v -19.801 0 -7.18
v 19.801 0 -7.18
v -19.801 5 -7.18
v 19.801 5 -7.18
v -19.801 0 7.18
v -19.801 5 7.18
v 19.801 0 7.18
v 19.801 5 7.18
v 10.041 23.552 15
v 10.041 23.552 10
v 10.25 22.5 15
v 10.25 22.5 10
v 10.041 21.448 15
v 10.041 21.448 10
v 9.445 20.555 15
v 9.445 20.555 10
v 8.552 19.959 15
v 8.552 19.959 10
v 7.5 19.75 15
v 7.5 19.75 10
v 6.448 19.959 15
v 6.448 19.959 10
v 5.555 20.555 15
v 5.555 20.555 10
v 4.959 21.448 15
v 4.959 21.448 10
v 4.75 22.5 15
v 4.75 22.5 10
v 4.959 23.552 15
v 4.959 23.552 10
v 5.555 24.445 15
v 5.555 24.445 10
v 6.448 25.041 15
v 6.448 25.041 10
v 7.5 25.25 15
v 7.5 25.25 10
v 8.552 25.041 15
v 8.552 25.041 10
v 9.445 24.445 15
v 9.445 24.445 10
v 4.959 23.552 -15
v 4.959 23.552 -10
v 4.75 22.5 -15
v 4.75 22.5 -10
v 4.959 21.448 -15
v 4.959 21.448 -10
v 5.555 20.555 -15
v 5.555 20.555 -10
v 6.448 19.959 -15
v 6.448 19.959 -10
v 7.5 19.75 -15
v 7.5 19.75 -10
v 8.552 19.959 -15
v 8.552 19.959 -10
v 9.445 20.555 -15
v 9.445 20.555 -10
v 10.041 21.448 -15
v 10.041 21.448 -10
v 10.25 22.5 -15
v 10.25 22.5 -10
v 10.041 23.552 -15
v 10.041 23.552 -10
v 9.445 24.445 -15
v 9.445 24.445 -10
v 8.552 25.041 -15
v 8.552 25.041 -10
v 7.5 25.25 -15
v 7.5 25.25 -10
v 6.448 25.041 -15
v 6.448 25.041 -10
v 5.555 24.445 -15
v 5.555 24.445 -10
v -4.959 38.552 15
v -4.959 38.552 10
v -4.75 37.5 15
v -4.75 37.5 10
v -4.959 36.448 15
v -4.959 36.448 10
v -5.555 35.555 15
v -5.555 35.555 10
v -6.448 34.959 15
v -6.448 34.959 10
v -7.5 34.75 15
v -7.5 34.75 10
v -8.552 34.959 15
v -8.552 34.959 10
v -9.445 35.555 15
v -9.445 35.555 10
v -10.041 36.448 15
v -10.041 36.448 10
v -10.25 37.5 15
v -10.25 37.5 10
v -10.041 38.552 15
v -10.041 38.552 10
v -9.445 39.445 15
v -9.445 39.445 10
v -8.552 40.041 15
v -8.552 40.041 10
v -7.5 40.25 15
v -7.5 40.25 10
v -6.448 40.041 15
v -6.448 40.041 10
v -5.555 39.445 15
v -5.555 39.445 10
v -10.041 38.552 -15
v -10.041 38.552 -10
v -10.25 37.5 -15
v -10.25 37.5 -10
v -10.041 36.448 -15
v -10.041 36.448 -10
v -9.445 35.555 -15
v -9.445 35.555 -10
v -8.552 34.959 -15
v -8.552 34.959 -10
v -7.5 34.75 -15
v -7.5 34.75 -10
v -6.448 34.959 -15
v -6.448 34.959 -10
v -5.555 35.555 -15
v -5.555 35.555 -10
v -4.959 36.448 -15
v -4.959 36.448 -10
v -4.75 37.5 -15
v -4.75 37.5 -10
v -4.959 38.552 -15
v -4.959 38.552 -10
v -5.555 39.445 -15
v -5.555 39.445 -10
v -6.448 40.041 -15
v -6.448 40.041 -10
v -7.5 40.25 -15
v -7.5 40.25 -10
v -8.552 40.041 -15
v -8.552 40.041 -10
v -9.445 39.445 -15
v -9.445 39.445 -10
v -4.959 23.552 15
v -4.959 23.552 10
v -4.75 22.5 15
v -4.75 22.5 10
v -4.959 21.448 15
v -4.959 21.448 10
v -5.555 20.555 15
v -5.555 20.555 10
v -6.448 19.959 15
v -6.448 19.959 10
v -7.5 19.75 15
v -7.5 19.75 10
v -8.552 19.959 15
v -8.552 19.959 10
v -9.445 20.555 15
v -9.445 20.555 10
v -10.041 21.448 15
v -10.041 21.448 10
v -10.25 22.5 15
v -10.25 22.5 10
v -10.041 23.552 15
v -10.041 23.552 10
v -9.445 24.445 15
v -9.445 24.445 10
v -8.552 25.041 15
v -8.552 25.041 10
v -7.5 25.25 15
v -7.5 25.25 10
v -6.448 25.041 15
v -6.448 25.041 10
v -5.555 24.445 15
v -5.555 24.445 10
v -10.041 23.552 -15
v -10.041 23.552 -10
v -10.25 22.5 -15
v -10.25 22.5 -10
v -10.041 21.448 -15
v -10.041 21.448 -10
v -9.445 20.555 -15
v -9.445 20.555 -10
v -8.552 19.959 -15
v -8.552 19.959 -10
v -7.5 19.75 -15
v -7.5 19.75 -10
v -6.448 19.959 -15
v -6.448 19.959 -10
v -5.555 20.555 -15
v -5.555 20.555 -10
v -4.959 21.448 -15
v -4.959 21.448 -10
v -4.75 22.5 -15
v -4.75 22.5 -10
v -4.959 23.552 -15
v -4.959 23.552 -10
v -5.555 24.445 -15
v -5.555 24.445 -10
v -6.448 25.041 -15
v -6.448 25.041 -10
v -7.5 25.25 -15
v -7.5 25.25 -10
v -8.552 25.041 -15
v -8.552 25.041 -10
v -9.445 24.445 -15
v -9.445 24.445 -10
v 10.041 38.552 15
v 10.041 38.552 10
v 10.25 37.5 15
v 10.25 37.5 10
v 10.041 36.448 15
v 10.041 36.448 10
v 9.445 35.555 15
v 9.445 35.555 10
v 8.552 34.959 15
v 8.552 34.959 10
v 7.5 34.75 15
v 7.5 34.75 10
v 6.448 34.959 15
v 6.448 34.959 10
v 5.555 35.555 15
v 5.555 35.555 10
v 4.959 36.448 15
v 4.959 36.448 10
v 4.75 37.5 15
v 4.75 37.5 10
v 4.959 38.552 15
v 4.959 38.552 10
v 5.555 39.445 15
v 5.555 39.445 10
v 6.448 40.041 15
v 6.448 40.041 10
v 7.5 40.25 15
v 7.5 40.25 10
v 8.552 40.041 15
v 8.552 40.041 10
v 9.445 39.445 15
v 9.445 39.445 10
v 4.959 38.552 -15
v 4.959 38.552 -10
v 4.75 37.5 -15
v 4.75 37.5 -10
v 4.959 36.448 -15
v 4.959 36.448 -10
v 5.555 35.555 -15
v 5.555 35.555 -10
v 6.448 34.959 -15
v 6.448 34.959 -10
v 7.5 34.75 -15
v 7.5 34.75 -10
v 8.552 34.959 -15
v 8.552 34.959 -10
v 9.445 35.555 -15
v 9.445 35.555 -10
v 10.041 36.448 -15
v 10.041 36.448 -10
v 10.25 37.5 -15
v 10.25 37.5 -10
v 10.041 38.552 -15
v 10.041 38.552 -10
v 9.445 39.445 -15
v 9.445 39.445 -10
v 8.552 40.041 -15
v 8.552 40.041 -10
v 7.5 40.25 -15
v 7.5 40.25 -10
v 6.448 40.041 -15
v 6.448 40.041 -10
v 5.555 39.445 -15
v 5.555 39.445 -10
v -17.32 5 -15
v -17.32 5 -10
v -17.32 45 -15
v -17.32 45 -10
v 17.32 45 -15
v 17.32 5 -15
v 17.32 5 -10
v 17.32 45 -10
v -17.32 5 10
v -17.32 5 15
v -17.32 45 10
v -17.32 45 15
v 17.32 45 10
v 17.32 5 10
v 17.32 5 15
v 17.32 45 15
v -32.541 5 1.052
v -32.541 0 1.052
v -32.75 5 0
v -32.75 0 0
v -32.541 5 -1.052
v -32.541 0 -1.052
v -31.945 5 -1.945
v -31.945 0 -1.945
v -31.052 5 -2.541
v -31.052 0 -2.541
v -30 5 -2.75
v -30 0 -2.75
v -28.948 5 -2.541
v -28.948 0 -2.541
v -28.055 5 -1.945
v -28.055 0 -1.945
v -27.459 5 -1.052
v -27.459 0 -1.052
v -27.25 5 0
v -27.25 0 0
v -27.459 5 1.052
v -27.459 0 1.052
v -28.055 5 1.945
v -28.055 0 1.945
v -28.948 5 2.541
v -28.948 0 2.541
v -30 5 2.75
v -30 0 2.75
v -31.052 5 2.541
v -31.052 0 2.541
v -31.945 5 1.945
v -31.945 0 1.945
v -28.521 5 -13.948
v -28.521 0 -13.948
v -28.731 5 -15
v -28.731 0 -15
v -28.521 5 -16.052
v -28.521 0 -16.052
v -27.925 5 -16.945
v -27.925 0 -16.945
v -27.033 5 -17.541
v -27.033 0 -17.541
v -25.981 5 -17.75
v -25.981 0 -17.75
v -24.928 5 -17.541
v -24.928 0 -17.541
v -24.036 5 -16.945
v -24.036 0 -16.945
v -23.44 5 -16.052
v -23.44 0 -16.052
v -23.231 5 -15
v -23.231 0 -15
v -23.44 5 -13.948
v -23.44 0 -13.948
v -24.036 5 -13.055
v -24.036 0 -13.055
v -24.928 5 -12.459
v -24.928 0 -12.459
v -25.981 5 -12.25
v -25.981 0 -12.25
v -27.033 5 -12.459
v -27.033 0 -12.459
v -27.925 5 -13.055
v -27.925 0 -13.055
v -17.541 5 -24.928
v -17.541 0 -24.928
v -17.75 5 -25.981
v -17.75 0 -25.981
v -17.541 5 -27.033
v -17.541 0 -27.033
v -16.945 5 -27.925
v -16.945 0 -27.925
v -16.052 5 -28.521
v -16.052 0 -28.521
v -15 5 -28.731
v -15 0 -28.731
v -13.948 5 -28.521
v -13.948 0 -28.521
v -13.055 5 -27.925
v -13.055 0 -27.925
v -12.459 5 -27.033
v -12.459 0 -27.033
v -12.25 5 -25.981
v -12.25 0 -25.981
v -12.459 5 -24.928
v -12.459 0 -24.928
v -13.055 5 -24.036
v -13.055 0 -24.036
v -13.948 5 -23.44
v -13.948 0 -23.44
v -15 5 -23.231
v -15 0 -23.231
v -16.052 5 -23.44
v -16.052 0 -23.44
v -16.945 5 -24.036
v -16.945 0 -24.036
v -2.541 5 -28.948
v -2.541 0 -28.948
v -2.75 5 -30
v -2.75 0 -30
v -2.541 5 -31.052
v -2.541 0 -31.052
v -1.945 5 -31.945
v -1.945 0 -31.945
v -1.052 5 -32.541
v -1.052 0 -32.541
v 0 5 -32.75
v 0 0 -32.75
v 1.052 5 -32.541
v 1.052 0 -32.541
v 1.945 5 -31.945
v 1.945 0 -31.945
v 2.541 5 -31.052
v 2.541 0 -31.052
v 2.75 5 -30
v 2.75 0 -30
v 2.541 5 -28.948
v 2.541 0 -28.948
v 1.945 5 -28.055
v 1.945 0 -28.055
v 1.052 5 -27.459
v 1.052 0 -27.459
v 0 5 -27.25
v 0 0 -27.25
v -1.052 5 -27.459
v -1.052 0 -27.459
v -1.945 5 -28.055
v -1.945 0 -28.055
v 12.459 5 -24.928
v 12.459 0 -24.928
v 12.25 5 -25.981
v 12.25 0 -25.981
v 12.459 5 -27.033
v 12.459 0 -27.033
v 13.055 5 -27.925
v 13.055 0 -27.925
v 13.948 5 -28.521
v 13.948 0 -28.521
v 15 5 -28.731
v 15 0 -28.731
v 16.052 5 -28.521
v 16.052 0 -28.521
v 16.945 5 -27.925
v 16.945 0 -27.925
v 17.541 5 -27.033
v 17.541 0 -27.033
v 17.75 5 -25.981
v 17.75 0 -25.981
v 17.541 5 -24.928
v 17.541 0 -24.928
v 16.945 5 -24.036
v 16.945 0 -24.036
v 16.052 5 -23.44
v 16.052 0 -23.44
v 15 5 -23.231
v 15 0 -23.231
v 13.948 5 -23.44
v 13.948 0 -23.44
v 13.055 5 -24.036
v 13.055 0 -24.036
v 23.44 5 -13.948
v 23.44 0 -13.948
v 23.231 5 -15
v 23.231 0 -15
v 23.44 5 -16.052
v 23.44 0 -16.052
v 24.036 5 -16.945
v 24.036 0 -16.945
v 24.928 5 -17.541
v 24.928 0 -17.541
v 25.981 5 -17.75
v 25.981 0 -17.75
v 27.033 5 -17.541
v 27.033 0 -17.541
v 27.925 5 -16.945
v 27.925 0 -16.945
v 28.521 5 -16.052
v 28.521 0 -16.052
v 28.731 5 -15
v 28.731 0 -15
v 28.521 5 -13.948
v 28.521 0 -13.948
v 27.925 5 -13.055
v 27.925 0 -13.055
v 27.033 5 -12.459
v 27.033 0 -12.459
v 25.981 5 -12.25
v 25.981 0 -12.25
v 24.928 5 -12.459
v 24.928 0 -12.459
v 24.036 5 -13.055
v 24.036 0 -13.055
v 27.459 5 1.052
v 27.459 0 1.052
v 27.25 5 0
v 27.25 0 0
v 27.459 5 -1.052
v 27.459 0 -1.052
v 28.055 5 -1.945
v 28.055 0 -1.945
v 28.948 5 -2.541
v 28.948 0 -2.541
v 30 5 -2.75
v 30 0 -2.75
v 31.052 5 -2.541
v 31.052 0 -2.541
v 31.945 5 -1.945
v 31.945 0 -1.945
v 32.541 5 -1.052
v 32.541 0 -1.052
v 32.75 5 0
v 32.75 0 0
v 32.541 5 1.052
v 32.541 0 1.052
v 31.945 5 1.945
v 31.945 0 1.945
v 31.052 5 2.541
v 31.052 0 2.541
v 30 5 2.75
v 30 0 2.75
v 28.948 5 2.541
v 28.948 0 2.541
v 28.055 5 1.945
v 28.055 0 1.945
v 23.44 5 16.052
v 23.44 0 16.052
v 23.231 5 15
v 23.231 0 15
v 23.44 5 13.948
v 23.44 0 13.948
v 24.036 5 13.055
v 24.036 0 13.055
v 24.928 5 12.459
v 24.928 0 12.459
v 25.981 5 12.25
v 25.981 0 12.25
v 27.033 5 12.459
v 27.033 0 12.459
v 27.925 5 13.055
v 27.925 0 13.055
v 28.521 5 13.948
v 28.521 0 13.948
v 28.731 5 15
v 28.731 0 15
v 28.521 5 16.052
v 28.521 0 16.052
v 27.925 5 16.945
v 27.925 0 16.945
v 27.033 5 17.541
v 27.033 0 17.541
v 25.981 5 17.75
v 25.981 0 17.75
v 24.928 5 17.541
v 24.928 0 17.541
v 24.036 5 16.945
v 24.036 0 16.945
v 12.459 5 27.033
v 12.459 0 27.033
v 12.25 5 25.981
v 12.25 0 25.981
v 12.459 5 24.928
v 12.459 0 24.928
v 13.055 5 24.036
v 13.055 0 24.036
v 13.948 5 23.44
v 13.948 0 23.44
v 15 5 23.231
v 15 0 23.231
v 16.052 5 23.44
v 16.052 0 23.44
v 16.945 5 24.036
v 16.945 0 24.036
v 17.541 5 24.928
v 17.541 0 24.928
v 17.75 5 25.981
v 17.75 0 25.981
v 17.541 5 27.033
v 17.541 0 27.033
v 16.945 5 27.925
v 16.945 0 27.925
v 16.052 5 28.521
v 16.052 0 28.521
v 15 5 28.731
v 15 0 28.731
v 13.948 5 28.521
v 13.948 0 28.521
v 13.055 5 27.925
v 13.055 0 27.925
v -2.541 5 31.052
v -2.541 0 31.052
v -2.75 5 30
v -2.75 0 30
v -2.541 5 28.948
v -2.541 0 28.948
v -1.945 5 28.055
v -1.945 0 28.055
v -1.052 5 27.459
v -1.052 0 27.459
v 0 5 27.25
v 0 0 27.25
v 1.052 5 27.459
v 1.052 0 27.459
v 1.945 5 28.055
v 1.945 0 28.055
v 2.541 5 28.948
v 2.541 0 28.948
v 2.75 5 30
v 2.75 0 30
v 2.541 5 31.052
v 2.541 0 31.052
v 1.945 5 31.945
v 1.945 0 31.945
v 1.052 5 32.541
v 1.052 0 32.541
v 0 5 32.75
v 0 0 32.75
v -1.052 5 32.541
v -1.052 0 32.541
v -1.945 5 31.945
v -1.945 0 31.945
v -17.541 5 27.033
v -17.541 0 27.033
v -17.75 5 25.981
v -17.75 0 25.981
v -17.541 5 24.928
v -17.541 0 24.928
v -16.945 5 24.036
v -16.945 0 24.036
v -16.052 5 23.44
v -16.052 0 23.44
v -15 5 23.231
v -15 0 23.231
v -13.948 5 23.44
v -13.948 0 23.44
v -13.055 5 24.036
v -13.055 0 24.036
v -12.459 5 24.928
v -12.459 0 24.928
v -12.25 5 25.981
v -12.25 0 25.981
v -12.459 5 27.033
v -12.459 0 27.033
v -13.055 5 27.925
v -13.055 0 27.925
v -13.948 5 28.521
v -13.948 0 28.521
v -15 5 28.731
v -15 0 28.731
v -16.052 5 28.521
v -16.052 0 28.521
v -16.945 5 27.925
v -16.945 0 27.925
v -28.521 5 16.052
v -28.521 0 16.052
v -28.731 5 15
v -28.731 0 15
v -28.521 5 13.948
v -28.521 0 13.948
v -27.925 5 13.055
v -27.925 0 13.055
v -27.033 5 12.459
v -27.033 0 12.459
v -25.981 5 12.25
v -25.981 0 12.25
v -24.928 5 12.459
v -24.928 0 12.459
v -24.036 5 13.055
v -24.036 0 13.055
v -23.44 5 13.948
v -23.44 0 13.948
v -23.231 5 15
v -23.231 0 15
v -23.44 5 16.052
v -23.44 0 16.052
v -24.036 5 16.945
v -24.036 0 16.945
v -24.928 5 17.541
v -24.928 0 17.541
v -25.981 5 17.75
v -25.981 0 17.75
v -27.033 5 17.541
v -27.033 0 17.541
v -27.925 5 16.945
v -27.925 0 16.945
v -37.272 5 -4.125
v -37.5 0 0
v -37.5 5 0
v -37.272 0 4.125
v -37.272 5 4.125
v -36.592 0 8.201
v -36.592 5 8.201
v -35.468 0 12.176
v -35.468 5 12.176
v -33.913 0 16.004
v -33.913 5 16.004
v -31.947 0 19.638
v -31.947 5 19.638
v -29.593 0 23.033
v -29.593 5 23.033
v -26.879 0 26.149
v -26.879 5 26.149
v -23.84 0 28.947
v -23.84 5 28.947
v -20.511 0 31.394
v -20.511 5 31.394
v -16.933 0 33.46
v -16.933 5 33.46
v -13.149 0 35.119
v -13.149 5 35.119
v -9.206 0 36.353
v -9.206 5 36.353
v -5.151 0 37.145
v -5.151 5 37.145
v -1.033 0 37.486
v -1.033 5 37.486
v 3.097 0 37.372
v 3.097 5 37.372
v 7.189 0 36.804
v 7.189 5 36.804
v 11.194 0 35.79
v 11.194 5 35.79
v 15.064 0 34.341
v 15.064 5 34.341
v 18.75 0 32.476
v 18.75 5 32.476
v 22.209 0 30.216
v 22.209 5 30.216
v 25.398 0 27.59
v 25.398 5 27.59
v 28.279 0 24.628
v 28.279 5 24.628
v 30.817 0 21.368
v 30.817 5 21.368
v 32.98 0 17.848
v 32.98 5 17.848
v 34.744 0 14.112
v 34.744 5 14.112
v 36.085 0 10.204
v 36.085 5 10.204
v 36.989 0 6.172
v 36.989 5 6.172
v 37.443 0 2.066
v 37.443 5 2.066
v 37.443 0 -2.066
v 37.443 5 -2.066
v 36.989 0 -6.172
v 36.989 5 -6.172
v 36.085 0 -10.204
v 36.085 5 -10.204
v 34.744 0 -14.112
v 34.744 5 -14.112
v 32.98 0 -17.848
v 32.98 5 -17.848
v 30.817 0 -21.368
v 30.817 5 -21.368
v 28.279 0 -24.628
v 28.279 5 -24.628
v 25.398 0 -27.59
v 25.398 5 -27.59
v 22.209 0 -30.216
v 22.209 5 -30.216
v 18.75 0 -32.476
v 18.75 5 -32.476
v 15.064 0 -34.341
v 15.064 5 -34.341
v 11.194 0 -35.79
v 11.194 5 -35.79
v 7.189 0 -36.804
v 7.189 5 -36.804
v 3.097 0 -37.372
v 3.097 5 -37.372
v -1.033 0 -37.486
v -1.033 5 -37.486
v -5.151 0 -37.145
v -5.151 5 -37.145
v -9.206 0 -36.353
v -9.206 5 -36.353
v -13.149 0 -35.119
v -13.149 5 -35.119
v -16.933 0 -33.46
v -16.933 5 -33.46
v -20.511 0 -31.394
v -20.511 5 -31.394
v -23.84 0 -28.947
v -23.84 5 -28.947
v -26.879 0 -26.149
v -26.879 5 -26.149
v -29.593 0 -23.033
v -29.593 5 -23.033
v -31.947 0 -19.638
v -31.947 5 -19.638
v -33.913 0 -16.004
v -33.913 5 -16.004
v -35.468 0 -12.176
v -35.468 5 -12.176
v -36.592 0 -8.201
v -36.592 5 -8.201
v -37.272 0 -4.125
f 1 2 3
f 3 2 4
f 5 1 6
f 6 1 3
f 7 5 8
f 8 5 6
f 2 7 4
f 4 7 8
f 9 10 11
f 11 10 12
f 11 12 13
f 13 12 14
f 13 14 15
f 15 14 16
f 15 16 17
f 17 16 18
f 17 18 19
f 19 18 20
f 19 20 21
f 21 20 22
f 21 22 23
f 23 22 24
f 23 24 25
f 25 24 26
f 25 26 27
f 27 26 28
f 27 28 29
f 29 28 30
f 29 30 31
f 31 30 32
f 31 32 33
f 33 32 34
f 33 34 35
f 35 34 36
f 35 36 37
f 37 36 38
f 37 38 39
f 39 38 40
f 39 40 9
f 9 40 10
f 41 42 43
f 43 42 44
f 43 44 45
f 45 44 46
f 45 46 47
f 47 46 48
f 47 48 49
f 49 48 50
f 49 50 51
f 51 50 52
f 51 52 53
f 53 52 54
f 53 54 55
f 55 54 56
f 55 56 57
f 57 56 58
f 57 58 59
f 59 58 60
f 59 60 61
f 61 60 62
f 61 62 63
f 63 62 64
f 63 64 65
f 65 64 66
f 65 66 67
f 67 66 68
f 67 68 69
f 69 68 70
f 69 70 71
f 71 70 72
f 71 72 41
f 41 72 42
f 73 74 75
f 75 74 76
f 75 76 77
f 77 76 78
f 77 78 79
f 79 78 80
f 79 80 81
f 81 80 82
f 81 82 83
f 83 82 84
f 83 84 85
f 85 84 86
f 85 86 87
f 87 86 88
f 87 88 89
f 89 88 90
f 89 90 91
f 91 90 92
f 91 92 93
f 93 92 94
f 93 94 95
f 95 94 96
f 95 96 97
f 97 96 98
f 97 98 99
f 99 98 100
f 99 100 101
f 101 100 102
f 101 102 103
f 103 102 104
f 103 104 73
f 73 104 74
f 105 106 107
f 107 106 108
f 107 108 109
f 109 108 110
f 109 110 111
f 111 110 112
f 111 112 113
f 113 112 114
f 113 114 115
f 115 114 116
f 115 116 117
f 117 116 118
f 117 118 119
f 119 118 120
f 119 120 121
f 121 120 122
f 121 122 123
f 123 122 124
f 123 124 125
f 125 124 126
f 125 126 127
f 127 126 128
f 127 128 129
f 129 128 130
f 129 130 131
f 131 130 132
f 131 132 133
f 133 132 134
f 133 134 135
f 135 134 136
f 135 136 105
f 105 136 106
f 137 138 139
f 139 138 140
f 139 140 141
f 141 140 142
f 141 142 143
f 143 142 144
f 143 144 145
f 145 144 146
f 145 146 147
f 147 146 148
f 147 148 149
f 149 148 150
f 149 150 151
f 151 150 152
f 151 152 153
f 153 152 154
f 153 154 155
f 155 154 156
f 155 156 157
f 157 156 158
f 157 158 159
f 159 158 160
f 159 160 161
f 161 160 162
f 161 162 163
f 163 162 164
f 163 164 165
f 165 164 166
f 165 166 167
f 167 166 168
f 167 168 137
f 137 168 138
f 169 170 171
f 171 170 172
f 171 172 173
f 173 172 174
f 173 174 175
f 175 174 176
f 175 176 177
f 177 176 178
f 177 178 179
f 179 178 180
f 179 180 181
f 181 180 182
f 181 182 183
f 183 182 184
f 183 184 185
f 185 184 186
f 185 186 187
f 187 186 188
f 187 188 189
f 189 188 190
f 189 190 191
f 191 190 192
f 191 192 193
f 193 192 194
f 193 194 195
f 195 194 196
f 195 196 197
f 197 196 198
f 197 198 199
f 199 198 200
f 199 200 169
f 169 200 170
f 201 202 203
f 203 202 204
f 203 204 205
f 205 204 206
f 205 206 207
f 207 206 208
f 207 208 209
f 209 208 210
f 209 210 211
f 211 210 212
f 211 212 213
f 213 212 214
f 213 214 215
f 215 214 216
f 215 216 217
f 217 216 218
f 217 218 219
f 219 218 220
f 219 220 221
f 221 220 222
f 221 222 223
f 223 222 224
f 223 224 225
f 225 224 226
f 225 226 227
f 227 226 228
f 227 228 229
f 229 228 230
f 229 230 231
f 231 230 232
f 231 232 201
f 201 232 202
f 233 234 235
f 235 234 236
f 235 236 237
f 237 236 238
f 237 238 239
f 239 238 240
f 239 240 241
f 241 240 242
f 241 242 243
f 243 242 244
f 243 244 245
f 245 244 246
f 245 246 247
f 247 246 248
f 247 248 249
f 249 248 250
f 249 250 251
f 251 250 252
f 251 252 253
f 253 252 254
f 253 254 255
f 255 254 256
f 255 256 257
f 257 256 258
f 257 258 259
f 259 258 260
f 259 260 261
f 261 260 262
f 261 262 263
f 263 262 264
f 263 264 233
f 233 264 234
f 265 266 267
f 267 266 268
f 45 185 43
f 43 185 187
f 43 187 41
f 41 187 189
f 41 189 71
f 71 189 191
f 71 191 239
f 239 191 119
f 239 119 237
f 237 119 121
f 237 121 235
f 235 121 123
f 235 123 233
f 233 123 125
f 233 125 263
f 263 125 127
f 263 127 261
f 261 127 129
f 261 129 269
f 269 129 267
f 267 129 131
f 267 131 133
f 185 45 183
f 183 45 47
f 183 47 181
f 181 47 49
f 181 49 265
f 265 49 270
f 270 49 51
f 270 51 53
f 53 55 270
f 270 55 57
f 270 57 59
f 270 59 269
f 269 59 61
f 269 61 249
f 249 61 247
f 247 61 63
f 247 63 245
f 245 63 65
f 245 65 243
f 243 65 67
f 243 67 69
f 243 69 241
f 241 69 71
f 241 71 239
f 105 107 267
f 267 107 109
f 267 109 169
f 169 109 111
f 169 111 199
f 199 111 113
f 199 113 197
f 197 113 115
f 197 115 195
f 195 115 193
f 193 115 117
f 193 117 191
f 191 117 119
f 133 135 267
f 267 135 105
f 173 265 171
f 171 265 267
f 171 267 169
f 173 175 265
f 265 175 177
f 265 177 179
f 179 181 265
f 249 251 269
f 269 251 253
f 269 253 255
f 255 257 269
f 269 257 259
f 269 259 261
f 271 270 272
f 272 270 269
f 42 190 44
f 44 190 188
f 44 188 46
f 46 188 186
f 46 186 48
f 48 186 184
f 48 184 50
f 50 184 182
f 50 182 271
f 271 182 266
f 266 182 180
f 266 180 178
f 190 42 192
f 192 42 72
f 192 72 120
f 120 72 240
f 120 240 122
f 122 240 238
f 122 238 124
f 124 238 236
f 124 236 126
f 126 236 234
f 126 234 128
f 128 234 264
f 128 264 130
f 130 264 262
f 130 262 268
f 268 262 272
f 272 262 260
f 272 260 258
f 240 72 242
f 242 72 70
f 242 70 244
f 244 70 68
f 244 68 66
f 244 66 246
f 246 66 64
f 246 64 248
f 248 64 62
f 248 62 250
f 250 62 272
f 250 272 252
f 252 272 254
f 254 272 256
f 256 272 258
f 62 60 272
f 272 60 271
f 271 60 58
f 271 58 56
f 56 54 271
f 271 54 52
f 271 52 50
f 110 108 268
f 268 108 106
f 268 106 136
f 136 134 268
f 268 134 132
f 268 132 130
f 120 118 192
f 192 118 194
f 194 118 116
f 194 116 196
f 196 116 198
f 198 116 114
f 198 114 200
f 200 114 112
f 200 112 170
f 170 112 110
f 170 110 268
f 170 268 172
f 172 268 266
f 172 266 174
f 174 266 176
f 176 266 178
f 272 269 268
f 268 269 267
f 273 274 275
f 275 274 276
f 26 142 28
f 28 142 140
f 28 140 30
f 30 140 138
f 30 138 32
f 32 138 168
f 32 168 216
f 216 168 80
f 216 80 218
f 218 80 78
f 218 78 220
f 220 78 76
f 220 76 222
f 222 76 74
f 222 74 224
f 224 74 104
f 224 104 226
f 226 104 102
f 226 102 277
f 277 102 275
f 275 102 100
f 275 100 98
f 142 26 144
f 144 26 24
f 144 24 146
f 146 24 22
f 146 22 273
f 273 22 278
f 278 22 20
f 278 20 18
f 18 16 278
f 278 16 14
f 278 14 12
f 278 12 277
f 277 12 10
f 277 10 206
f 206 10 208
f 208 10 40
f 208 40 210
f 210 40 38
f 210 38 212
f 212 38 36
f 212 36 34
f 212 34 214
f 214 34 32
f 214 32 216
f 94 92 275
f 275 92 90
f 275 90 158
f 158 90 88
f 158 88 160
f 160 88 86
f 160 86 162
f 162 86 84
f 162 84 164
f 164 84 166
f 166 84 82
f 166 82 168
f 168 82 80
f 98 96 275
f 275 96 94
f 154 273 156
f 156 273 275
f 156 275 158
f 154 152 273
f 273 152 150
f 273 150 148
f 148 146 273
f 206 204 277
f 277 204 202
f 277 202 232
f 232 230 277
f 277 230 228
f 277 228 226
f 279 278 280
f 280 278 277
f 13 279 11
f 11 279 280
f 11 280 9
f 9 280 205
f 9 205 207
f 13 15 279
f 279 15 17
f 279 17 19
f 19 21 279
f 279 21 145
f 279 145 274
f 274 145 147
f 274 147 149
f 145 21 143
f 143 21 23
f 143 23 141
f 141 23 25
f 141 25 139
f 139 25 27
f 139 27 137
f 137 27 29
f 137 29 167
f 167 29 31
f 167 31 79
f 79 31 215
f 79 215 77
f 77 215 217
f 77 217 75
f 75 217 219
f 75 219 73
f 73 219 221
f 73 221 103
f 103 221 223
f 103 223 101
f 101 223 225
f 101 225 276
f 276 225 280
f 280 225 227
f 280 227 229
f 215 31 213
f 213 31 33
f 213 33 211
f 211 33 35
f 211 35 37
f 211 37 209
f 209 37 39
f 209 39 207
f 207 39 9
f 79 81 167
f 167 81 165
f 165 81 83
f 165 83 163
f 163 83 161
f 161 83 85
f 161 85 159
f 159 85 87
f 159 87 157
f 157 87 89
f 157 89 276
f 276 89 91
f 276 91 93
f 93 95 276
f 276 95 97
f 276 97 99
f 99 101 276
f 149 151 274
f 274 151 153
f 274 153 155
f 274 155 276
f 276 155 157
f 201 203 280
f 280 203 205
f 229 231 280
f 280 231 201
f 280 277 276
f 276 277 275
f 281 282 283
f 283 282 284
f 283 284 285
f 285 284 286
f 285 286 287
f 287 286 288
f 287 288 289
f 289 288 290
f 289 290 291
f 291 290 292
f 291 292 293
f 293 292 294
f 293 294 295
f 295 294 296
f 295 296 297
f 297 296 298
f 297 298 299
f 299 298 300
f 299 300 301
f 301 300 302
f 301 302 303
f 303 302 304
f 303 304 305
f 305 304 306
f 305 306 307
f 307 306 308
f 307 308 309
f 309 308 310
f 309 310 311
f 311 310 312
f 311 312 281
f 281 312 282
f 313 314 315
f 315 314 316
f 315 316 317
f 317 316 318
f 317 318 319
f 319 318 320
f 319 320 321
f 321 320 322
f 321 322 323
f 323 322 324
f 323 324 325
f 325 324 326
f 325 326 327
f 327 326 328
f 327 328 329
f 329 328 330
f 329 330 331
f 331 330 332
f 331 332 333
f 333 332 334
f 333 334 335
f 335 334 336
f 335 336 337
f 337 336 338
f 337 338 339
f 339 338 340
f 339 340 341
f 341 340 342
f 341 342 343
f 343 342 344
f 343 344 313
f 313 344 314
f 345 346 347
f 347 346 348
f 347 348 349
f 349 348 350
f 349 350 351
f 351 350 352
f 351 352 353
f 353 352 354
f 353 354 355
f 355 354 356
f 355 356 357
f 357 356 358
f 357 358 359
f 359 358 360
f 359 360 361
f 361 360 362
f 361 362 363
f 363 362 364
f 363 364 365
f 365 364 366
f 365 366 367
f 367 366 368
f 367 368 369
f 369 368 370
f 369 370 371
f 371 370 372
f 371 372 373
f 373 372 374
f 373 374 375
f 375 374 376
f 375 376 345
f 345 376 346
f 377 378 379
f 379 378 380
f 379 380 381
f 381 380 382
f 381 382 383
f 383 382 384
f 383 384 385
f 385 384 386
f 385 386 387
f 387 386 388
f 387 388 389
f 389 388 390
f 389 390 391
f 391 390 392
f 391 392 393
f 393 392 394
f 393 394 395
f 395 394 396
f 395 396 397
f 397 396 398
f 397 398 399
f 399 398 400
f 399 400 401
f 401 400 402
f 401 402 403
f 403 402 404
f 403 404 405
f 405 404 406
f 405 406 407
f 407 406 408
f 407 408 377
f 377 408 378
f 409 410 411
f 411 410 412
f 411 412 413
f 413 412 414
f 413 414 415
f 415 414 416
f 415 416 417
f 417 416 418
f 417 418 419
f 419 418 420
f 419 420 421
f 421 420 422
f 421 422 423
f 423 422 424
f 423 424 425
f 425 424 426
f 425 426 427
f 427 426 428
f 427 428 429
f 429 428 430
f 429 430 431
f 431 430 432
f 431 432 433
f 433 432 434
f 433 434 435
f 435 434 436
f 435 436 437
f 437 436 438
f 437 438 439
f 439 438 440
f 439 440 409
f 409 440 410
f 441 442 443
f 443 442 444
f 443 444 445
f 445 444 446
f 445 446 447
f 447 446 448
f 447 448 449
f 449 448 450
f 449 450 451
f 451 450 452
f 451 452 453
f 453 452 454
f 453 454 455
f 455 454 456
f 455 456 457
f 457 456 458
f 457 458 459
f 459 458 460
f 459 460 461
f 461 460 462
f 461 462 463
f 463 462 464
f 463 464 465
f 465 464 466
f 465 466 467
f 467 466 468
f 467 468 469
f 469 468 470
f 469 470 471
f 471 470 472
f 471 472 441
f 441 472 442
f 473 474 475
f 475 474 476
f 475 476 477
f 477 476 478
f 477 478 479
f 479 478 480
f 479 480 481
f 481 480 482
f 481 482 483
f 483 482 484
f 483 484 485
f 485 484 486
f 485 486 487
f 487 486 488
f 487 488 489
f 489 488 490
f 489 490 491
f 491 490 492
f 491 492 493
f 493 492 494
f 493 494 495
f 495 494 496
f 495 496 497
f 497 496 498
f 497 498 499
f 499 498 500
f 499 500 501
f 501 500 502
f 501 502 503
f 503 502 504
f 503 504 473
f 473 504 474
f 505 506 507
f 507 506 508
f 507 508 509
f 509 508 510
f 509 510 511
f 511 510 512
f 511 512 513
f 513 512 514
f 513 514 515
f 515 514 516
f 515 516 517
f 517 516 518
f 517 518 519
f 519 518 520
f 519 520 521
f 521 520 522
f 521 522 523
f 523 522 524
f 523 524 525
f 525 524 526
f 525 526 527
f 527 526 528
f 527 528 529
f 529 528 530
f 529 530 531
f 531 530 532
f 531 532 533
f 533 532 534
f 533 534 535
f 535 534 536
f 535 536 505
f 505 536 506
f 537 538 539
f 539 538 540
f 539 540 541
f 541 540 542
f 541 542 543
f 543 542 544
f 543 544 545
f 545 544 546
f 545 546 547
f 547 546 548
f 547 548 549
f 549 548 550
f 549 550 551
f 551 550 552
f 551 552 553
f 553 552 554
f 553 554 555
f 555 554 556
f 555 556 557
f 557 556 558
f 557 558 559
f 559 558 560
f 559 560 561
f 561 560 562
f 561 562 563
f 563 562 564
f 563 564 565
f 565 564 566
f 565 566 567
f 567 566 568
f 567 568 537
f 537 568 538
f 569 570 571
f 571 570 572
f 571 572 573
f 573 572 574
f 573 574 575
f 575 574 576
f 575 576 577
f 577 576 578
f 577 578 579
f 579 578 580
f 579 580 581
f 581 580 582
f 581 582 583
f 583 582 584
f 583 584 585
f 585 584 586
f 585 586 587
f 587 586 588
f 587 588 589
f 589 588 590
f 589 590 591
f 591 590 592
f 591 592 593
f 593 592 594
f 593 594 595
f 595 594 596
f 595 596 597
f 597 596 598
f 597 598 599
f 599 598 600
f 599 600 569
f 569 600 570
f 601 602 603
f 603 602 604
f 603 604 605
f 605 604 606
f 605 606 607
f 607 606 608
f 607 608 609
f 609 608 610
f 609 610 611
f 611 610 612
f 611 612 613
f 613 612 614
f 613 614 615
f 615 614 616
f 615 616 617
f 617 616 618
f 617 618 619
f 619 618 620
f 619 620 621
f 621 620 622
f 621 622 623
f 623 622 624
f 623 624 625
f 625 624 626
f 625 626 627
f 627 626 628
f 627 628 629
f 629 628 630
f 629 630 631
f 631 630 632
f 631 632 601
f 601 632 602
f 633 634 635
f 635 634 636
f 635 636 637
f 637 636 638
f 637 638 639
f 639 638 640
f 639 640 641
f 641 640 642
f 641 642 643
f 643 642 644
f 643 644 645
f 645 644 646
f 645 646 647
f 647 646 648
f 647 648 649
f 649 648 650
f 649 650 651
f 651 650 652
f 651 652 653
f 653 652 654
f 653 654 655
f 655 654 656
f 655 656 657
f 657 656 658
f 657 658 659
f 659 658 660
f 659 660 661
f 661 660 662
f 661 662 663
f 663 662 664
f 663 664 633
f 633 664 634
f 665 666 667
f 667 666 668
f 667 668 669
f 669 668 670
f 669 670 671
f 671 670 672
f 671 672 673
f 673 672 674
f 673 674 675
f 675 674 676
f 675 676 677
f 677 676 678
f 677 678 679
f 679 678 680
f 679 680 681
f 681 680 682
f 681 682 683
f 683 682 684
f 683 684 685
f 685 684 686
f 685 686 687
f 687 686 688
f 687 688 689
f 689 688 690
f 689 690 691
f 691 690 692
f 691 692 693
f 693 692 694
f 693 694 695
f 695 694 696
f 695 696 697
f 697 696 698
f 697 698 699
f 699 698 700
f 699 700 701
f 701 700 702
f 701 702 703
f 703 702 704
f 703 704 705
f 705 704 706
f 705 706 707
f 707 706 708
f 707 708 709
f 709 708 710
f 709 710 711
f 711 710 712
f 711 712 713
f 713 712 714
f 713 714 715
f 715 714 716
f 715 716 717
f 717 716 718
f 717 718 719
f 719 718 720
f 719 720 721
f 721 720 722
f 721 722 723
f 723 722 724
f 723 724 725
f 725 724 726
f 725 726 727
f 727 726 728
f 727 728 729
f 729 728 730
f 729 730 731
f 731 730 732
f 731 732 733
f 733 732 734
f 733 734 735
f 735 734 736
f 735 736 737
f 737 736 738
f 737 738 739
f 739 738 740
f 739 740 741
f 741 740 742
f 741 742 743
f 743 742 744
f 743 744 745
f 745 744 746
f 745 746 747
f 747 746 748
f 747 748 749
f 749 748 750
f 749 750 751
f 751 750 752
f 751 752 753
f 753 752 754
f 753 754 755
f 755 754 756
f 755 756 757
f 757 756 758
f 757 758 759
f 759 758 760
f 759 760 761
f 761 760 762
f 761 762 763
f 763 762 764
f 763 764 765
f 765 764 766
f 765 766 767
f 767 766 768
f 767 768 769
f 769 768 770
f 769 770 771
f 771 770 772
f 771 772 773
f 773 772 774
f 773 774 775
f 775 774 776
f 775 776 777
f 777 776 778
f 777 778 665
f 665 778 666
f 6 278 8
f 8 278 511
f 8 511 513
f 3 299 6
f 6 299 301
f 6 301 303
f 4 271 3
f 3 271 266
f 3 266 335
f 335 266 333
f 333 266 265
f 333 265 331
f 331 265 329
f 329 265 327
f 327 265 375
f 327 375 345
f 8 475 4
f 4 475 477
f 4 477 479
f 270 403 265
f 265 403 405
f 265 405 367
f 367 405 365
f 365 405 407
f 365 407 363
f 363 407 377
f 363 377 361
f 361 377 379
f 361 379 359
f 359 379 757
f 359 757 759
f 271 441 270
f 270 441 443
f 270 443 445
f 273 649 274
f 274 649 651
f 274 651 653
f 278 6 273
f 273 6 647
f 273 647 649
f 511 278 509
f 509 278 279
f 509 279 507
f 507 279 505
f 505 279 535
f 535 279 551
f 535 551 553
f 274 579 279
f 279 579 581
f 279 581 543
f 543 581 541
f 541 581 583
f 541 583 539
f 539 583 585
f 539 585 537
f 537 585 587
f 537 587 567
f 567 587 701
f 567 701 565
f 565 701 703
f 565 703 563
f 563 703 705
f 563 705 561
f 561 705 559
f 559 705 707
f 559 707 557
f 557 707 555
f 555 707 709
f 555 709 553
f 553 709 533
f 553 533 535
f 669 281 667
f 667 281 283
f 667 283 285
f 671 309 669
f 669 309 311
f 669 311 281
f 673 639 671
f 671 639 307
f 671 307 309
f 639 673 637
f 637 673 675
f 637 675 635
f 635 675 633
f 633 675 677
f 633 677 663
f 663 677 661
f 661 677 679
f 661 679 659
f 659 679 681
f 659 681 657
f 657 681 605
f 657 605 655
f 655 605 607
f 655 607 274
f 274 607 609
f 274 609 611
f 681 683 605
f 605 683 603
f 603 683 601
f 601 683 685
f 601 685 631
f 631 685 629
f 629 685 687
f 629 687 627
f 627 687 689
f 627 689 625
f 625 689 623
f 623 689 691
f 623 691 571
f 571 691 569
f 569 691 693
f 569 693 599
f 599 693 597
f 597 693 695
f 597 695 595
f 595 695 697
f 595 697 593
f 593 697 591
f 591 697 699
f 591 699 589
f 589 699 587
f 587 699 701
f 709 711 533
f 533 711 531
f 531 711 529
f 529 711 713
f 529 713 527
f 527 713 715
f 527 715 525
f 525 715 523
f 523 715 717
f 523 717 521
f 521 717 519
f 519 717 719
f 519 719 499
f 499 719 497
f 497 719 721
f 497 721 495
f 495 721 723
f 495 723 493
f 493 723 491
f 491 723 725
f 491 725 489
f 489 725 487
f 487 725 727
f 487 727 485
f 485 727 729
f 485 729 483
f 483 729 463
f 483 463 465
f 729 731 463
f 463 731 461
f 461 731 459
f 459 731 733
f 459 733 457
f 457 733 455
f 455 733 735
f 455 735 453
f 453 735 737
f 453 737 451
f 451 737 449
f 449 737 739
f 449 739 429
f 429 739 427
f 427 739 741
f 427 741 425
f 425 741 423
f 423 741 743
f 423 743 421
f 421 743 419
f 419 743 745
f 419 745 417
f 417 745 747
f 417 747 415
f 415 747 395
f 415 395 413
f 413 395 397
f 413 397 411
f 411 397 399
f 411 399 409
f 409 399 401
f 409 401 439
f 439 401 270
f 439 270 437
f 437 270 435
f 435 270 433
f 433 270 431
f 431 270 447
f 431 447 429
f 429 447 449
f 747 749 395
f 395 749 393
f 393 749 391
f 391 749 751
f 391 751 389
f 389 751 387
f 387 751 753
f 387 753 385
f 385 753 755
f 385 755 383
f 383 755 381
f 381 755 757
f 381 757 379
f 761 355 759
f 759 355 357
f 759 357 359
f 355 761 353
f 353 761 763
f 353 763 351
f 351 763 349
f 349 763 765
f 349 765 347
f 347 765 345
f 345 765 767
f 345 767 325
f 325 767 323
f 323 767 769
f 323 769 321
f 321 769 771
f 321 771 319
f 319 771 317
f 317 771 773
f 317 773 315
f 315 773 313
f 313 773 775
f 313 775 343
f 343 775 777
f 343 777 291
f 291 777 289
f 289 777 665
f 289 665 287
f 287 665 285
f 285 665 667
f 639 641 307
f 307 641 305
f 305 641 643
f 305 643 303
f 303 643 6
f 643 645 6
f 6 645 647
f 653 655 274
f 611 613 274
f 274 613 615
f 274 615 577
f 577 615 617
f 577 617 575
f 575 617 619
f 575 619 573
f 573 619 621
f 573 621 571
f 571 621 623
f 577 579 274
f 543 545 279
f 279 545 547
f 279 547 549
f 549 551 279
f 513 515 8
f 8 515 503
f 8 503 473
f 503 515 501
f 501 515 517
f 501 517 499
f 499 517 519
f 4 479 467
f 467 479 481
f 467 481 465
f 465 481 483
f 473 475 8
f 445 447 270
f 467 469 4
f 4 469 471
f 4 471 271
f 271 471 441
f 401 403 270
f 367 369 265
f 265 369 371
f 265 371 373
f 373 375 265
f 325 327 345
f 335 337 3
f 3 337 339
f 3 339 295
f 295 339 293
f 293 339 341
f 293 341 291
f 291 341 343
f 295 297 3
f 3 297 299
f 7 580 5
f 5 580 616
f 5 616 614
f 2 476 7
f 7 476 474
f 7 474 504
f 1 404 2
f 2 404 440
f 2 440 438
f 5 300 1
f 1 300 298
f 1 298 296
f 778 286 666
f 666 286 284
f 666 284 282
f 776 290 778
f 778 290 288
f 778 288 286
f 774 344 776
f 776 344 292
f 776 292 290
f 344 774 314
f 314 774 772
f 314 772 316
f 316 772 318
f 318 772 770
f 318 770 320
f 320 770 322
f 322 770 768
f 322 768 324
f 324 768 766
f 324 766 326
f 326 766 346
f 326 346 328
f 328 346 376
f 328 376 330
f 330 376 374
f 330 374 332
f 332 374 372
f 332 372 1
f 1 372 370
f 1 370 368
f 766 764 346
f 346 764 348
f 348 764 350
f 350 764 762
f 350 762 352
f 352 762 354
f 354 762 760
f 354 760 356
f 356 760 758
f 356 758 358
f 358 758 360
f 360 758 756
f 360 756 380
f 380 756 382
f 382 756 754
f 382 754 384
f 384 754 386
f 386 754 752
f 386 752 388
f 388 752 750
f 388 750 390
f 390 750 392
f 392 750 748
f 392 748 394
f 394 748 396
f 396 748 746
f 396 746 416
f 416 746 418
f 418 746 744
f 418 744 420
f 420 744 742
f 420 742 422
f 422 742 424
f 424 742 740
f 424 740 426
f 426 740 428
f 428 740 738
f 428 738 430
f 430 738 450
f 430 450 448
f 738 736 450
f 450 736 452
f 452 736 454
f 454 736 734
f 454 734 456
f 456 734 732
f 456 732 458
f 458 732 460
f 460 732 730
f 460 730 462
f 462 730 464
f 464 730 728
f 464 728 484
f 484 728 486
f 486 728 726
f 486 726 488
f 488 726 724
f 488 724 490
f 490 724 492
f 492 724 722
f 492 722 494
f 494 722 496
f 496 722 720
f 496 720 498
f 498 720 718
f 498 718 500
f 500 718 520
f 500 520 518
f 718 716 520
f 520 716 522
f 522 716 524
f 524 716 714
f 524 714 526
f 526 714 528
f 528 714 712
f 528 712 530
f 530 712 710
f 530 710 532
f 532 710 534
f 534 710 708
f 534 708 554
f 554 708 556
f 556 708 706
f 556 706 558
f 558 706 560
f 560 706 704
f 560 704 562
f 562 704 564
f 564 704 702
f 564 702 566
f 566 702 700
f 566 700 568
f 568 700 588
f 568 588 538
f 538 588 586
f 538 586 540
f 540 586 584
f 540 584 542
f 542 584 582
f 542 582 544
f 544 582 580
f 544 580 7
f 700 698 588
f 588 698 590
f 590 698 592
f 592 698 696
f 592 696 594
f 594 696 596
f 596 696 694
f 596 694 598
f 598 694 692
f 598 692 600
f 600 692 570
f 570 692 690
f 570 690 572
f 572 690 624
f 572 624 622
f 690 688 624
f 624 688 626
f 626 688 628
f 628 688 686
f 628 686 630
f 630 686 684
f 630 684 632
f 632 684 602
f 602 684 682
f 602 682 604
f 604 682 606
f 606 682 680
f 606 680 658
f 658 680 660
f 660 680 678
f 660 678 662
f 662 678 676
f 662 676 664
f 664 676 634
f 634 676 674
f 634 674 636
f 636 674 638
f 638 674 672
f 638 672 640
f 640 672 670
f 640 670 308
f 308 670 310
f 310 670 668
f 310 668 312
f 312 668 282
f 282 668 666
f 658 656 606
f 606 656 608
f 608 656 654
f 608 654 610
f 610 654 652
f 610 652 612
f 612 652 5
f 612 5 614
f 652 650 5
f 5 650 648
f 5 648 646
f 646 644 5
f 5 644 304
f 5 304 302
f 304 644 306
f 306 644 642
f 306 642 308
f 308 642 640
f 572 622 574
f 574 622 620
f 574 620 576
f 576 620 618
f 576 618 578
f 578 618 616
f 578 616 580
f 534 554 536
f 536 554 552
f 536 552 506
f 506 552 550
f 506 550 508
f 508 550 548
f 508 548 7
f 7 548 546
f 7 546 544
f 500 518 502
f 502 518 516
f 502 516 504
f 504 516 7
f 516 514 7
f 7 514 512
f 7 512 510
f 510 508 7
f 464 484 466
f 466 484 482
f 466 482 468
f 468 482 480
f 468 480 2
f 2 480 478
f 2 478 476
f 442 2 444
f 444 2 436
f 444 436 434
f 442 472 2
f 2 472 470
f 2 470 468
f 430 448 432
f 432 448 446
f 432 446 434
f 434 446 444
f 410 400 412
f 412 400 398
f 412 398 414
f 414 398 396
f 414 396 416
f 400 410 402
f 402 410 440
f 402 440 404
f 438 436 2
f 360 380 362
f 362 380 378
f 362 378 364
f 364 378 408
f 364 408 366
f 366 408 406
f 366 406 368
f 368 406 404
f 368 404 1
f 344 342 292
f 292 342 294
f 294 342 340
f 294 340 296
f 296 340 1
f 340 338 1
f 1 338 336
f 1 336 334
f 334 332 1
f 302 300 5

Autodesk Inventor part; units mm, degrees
ref_plane "YZ Plane" through (0, 0, 0) normal (1, 0, 0) x (0, 1, 0)
ref_plane "XZ Plane" through (0, 0, 0) normal (0, 1, 0) x (-1, 0, 0)
ref_plane "XY Plane" through (0, 0, 0) normal (0, 0, 1) x (1, 0, 0)
sketch "Sketch1" plane through (0, 0, 0) normal (0, 1, 0) x (-1, 0, 0)
  circle A0 centre (0, 0) radius 37.5
  circle A1 centre (30, 0) radius 2.75
  circle A2 centre (25.9808, -15) radius 2.75
  circle A3 centre (15, -25.9808) radius 2.75
  circle A4 centre (0, -30) radius 2.75
  circle A5 centre (-15, -25.9808) radius 2.75
  circle A6 centre (-25.9808, -15) radius 2.75
  circle A7 centre (-30, 0) radius 2.75
  circle A8 centre (-25.9808, 15) radius 2.75
  circle A9 centre (-15, 25.9808) radius 2.75
  circle A10 centre (0, 30) radius 2.75
  circle A11 centre (15, 25.9808) radius 2.75
  circle A12 centre (25.9808, 15) radius 2.75
  circle A13 centre (21.0643, 0) radius 5 construction
  dimension "d1" = 5.5
  dimension "d4" = 360
  dimension "d33" = 30
  dimension "d34" = 75
extrude "Extrusion1" add sketch "Sketch1" along normal blind 5
sketch "Sketch2" plane through (0, 5, 0) normal (0, 1, 0) x (1, 0, 0)
  line L0 (0, 0) -> (-49.6447, 0)
  line L1 (0, 0) -> (0, 30.1523)
  line L2 (-17.3205, -10) -> (17.3205, -10)
  line L3 (17.3205, -10) -> (17.3205, -15)
  line L4 (17.3205, -15) -> (-17.3205, -15)
  line L5 (-17.3205, -15) -> (-17.3205, -10)
  line L6 (-17.3205, -10) -> (17.3205, -15) construction
  line L7 (17.3205, -10) -> (-17.3205, -15) construction
  line L8 (-17.3205, 10) -> (17.3205, 10)
  line L9 (17.3205, 10) -> (17.3205, 15)
  line L10 (17.3205, 15) -> (-17.3205, 15)
  line L11 (-17.3205, 15) -> (-17.3205, 10)
  line L12 (-17.3205, 10) -> (17.3205, 15) construction
  line L13 (17.3205, 10) -> (-17.3205, 15) construction
  point P0 (0, -12.5)
  point P1 (0, 12.5)
  dimension "d13" = 20
  dimension "d14" = 34.641
  dimension "d17" = 0
  dimension "d18" = 5
extrude "Extrusion2" add sketch "Sketch2" along normal blind 40
sketch "Sketch4" plane through (-17.3205, 5, 15) normal (0, 0, 1) x (1, 0, 0)
  line L0 (24.8205, 32.5) -> (9.8205, 32.5)
  line L1 (9.8205, 32.5) -> (9.8205, 17.5)
  line L2 (9.8205, 17.5) -> (24.8205, 17.5)
  line L3 (24.8205, 17.5) -> (24.8205, 32.5)
  line L4 (24.8205, 32.5) -> (9.8205, 17.5) construction
  line L5 (9.8205, 32.5) -> (24.8205, 17.5) construction
  line L6 (34.641, 0) -> (34.641, 40) projected
  line L7 (0, 40) -> (34.641, 40) projected
  circle A0 centre (9.8205, 32.5) radius 2.75
  circle A1 centre (24.8205, 32.5) radius 2.75
  circle A2 centre (24.8205, 17.5) radius 2.75
  circle A3 centre (9.8205, 17.5) radius 2.75
  point P0 (17.3205, -5)
  point P1 (17.3205, 25)
  dimension "d23" = 15
  dimension "d24" = 17.3205
  dimension "d25" = 15
  dimension "d26" = 15
  dimension "d27" = 5.5
  dimension "d28" = 5.5
  dimension "d29" = 5.5
  dimension "d30" = 5.5
extrude "Extrusion3" cut sketch "Sketch4" against normal blind 80 contours A0 L1 L0 | L0 L1 A0 | A1 L3 L0 | L0 L3 A1 | A3 L2 L1 | L1 L2 A3 | A2 L2 L3 | L3 L2 A2
sketch "Sketch5" plane through (0, 5, 0) normal (0, 1, 0) x (1, 0, 0)
  line L0 (19.8007, 7.1805) -> (-19.8007, 7.1805)
  line L1 (-19.8007, 7.1805) -> (-19.8007, -7.1805)
  line L2 (-19.8007, -7.1805) -> (19.8007, -7.1805)
  line L3 (19.8007, -7.1805) -> (19.8007, 7.1805)
  line L4 (19.8007, 7.1805) -> (-19.8007, -7.1805) construction
  line L5 (-19.8007, 7.1805) -> (19.8007, -7.1805) construction
  point P0 (0, 0)
extrude "Extrusion4" cut sketch "Sketch5" against normal blind 10
properties part number "Base"
